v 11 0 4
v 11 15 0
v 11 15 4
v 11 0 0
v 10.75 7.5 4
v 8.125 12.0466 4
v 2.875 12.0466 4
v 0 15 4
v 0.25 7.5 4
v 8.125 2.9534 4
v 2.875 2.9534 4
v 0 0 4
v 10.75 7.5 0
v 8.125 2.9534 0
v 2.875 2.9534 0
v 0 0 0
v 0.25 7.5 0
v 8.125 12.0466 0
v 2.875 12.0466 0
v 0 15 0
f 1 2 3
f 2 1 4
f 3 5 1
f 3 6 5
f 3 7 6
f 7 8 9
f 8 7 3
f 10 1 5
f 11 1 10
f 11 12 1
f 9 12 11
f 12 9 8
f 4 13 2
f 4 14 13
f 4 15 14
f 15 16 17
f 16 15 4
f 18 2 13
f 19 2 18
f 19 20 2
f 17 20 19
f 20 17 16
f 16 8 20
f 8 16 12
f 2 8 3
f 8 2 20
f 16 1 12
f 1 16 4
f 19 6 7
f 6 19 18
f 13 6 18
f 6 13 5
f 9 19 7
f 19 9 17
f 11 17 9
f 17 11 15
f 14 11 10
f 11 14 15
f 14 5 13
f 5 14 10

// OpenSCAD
include <../Household/references.scad>

length_carriage_cage=15;
width_carriage_cage=11;
height_carriage_cage=4;

module part(){
    cube([width_carriage_cage,length_carriage_cage,height_carriage_cage]);   
    }

module main(){
    difference(){
        part();
        translate([width_carriage_cage/2,length_carriage_cage/2,0]){nut_M5(height_carriage_cage);};
    }
}
main();
    
